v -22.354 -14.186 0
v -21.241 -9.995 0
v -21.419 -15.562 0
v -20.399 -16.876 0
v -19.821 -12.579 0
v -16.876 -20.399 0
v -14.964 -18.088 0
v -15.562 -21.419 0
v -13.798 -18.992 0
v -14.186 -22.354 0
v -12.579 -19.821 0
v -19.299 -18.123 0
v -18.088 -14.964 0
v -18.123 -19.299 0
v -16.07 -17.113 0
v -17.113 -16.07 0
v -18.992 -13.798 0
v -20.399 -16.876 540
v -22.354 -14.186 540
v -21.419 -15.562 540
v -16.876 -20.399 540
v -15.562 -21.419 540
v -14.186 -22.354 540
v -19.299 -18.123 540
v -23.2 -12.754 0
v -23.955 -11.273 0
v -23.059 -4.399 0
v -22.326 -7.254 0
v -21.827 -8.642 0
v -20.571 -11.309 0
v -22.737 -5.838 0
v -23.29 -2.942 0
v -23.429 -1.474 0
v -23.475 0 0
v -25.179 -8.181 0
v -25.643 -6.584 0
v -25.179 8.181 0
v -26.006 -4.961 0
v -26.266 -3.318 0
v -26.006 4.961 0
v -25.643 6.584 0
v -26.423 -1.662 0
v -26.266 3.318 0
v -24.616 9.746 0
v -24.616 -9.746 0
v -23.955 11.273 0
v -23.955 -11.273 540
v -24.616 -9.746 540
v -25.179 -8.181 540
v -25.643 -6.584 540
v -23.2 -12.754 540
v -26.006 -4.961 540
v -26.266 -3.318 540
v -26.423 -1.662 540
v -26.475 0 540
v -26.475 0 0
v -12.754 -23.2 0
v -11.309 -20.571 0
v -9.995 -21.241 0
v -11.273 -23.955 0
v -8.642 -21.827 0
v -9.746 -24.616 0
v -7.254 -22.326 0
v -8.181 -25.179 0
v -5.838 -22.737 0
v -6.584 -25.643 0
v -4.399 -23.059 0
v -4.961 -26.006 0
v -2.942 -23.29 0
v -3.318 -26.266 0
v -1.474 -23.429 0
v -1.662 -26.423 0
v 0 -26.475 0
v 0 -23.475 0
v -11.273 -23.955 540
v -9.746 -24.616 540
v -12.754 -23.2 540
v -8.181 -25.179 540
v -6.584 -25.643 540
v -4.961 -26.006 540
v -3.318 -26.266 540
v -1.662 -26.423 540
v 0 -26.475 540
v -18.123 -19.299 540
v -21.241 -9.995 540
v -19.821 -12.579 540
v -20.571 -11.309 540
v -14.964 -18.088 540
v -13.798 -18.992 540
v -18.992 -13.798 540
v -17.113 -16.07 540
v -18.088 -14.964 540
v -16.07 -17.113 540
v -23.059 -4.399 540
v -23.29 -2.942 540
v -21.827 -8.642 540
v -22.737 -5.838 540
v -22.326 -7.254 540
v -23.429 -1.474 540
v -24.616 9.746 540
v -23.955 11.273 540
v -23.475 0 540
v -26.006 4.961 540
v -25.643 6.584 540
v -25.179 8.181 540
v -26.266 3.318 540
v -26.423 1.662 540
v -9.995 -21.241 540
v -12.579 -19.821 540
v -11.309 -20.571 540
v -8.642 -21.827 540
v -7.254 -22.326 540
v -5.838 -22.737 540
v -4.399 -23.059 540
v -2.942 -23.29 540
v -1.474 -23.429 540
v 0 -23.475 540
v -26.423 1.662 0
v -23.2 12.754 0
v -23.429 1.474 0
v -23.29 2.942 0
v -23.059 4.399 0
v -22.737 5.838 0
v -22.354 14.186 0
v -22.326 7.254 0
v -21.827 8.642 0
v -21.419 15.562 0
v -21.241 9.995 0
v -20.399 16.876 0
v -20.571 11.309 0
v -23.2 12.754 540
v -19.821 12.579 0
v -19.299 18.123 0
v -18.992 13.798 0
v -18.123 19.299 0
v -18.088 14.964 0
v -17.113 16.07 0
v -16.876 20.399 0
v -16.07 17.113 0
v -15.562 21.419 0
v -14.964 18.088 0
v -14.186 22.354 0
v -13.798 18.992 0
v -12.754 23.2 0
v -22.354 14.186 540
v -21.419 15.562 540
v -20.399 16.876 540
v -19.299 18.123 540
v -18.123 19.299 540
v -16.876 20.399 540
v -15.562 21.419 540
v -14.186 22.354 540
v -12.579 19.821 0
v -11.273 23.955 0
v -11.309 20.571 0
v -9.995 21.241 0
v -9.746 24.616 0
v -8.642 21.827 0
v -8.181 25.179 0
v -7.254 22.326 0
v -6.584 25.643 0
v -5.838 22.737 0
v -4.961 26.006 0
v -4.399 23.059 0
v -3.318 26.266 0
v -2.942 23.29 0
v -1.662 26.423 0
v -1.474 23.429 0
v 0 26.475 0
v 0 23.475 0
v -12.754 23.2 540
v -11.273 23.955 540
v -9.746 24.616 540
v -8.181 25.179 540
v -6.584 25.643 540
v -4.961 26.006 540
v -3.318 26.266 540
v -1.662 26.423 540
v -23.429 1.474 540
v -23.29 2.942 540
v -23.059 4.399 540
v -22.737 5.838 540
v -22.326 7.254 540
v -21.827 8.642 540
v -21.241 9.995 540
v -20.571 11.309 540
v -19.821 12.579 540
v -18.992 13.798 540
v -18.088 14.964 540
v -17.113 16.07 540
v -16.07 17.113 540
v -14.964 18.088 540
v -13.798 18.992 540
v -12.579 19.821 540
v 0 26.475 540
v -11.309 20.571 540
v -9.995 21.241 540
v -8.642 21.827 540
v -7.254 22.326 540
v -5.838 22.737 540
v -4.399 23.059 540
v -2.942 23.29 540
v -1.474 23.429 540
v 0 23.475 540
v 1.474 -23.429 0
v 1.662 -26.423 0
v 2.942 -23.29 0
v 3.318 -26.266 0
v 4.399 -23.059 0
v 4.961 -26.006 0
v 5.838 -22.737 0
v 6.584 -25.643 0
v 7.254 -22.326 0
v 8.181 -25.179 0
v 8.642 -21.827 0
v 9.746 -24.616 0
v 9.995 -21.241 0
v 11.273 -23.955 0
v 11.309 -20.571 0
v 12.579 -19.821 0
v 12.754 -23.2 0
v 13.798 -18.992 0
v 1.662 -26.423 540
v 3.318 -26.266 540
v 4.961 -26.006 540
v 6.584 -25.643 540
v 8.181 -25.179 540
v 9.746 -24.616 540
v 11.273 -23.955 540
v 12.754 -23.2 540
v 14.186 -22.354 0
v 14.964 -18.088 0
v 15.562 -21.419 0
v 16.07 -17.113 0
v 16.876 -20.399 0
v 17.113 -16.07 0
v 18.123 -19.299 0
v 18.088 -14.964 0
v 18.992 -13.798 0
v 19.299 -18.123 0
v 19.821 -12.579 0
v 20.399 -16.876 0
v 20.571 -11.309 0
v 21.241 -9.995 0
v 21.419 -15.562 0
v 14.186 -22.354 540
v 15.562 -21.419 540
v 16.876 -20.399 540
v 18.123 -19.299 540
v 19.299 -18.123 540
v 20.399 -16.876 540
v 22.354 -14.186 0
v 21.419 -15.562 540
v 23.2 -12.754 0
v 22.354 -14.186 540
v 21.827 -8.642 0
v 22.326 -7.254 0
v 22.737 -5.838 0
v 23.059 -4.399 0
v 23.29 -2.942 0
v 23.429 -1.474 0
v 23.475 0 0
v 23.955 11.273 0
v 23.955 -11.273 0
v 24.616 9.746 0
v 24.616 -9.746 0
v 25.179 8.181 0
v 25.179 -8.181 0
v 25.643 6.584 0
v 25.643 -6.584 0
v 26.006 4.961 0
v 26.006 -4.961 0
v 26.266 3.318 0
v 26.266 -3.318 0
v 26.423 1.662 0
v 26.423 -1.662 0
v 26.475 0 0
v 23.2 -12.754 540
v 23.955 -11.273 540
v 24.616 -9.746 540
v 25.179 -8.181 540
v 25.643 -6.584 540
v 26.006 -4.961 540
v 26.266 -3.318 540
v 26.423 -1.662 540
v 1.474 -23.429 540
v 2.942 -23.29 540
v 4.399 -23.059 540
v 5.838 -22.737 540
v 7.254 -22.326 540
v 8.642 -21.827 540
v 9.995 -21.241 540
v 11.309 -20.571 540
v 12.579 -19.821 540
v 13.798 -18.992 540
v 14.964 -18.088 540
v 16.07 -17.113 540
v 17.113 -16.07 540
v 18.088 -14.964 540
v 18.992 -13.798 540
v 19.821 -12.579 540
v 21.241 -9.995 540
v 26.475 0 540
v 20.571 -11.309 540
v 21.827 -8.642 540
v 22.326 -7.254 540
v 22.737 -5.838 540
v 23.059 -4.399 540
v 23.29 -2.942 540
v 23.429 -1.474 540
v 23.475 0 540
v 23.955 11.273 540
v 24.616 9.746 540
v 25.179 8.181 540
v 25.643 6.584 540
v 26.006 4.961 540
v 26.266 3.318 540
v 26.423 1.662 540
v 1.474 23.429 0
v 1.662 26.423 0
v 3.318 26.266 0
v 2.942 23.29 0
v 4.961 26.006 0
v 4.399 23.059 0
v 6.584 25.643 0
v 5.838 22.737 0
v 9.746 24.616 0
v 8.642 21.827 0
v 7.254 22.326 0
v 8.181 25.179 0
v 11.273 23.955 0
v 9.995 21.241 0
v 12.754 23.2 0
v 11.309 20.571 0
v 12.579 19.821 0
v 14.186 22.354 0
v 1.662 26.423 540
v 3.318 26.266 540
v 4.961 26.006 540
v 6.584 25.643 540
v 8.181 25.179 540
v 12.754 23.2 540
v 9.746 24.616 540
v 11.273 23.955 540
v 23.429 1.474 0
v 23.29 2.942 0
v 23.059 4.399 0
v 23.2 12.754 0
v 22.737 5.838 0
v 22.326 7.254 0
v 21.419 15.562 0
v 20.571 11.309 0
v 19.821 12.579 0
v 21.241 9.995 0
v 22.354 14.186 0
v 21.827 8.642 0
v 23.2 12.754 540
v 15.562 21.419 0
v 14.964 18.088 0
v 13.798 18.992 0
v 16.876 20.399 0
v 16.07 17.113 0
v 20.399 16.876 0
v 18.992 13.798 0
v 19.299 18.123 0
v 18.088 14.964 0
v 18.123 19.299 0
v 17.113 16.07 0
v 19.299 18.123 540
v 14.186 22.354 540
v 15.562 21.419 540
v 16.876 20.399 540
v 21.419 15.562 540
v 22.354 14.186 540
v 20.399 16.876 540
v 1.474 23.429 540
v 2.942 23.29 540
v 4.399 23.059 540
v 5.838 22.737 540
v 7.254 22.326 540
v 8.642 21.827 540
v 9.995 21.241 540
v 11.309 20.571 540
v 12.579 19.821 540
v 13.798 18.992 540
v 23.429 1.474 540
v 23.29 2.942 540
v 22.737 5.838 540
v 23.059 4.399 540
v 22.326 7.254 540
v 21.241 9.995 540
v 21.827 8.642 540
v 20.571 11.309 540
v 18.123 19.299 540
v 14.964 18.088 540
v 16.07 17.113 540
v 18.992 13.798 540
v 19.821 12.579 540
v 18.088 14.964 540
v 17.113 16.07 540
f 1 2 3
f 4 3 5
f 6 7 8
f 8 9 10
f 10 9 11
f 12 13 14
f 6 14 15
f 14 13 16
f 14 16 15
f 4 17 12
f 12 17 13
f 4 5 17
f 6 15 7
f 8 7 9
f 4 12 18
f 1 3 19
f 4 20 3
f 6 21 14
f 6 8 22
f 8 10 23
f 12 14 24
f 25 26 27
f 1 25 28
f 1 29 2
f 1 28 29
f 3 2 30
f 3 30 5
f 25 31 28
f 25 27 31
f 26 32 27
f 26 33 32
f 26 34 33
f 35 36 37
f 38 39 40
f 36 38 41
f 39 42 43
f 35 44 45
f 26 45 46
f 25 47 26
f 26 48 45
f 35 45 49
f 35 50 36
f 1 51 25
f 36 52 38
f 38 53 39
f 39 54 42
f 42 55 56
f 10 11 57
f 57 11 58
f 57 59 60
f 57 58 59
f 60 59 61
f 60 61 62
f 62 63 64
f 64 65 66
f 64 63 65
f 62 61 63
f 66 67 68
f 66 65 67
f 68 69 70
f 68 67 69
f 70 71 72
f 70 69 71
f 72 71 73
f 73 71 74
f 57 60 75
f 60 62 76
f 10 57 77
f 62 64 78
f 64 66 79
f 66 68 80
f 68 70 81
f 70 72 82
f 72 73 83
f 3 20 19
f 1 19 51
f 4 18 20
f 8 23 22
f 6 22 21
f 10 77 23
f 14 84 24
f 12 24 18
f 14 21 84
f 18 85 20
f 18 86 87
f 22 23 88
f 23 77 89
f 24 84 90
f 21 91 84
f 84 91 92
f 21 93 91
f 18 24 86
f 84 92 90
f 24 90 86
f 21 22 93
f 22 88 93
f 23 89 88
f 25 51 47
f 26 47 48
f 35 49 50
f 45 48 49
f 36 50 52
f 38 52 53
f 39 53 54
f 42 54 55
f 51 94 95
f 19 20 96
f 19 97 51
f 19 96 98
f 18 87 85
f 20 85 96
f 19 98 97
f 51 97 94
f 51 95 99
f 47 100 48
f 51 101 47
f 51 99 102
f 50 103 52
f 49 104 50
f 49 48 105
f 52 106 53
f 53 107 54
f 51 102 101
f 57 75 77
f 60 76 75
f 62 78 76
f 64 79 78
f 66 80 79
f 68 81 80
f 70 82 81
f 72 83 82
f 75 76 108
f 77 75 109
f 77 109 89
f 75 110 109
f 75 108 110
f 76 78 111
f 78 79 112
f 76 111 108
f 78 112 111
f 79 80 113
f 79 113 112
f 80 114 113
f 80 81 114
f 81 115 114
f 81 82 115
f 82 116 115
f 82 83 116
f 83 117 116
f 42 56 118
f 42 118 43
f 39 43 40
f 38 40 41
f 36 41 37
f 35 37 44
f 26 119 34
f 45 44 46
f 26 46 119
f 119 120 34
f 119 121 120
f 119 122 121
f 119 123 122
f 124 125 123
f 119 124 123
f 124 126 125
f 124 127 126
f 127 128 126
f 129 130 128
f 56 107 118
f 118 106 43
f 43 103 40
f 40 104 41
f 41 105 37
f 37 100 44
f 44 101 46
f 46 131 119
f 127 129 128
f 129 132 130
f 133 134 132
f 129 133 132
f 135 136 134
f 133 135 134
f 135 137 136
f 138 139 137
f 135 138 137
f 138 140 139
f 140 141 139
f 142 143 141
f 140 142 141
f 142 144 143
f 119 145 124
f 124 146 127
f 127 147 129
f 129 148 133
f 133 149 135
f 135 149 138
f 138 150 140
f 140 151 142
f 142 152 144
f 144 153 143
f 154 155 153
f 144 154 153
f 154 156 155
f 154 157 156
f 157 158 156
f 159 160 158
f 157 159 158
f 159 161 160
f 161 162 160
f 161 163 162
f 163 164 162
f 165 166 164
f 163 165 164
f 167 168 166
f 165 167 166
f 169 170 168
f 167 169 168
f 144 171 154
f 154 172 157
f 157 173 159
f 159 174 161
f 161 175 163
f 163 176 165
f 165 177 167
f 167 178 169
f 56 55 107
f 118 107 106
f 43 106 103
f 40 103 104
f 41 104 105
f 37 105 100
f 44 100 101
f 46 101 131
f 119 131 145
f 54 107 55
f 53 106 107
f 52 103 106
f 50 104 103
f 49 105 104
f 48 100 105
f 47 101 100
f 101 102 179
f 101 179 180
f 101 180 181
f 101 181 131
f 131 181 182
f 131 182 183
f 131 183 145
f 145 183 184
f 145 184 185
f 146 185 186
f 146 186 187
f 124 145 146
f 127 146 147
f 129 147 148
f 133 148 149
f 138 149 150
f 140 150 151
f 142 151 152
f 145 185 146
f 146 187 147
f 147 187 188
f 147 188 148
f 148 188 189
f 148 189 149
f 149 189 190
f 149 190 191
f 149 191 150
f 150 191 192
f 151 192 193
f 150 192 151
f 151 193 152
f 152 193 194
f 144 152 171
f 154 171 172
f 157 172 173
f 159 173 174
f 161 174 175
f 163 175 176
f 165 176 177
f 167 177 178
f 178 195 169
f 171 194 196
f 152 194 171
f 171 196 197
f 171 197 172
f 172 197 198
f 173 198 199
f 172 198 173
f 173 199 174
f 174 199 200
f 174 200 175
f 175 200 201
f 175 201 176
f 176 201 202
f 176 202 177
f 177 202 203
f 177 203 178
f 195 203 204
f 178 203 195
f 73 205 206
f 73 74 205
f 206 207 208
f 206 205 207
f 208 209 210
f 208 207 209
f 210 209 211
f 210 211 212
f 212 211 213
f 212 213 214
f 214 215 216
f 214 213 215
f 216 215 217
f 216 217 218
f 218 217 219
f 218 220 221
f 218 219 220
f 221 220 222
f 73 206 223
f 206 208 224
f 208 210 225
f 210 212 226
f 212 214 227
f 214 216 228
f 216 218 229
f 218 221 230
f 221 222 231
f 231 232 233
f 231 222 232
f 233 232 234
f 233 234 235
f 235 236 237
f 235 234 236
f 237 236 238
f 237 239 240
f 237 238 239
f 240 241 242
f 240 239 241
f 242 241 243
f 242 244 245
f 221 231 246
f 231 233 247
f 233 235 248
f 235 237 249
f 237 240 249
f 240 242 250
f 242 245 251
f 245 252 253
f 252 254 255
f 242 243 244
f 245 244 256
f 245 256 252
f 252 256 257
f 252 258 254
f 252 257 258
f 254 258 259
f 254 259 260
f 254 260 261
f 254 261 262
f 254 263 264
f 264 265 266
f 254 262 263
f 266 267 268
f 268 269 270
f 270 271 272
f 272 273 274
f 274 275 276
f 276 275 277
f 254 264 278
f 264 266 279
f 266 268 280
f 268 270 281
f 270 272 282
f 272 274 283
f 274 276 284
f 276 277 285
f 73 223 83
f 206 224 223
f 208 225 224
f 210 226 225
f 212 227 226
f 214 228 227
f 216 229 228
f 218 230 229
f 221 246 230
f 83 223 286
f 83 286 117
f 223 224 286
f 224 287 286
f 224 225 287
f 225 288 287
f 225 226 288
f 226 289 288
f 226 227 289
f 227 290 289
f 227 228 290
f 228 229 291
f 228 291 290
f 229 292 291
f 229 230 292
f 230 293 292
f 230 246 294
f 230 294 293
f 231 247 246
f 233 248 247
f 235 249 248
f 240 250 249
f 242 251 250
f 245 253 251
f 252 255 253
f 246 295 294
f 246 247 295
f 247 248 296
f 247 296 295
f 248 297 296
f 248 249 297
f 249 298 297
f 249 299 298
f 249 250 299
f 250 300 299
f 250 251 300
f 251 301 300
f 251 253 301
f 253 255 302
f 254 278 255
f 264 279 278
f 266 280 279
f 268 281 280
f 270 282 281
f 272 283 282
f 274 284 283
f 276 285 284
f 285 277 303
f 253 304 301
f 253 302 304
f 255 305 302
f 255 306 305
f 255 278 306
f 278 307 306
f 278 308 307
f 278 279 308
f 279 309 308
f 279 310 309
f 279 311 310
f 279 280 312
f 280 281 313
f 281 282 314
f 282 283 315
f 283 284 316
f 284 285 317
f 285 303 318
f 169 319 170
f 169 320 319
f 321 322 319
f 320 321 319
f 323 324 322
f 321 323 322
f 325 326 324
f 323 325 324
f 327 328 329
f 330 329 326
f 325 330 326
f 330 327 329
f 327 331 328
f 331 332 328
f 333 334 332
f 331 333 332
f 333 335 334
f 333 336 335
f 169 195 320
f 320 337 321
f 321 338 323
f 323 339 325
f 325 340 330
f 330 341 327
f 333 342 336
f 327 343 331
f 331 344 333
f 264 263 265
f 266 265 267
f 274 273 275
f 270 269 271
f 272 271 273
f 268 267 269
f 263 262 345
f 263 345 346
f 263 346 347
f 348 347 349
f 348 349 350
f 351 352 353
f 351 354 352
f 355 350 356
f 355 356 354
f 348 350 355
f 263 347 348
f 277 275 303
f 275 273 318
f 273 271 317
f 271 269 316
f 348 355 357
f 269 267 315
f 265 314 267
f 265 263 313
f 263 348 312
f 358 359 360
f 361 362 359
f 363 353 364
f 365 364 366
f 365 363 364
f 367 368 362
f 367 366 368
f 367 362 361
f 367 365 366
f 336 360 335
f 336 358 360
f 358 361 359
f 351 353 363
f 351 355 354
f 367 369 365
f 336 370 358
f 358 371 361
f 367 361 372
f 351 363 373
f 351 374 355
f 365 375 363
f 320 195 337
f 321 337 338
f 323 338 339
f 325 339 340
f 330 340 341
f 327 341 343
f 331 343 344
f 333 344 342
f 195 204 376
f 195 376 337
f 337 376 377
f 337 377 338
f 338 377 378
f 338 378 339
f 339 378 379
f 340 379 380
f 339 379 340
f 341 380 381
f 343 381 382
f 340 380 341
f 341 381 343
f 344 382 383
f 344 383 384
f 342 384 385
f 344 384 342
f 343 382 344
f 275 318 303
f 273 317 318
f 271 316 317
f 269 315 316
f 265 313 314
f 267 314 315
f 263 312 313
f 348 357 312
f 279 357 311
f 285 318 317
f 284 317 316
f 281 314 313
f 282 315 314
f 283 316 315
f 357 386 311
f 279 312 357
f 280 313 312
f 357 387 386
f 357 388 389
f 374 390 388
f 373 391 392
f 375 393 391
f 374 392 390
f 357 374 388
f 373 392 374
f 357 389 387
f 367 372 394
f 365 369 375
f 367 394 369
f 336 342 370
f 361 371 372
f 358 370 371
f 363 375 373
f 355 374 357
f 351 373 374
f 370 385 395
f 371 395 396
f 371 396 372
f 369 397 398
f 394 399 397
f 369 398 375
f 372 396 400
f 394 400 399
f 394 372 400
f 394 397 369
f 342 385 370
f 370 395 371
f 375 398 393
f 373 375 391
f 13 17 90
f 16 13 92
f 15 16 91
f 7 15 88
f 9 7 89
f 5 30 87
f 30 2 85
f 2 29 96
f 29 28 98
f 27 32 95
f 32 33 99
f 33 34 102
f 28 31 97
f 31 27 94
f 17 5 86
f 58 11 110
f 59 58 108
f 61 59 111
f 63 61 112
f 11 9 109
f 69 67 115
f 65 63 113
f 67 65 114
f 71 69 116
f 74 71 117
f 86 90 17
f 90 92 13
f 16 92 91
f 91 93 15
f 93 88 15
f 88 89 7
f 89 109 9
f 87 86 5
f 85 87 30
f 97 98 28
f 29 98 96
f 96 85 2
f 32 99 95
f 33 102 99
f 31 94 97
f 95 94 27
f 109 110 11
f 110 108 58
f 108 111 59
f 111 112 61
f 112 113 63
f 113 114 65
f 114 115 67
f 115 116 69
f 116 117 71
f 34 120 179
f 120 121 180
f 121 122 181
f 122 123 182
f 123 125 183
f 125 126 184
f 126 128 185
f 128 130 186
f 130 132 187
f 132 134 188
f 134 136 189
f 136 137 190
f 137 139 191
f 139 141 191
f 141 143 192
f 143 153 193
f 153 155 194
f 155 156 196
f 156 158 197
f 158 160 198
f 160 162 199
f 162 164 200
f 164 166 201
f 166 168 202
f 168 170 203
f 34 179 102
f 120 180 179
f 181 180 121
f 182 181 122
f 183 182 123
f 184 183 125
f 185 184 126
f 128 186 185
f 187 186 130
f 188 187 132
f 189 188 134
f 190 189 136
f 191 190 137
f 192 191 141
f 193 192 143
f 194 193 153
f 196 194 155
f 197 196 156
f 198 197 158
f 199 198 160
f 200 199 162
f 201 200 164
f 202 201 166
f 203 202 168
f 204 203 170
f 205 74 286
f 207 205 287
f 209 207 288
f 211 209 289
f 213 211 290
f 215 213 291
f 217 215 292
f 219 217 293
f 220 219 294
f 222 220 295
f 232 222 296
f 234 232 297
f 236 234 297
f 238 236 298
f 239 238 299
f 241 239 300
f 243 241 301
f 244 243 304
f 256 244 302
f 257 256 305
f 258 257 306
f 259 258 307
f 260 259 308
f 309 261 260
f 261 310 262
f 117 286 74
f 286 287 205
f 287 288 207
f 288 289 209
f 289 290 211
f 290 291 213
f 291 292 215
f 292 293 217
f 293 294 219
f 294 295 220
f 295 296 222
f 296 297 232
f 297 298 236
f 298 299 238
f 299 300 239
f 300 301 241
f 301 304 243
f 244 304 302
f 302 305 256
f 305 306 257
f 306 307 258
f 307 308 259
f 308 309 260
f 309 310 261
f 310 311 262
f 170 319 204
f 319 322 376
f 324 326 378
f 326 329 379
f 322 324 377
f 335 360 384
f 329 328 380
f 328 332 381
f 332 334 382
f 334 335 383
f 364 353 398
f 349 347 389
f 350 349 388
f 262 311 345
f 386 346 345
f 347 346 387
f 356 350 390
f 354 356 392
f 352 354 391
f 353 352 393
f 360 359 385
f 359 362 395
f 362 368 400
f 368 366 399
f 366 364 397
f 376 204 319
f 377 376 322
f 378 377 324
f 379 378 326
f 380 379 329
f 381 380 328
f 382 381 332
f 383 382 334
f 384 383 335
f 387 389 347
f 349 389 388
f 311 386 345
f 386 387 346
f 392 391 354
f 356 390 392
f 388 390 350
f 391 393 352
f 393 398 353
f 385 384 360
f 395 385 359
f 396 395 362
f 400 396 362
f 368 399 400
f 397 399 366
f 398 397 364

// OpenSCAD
tube_diameter           = 52.95;
wall_thickness          = 3;
length                  = 540;

// Calculate the necessary radii
outer_radius = tube_diameter / 2;
inner_radius = outer_radius - wall_thickness;

module fuselage() {
    // The difference module subtracts the second shape (inner cylinder) 
    // from the first shape (outer cylinder).
    difference() {
        // Outer Cylinder (Solid part)
        cylinder(h = length, r = outer_radius);

        // Inner Cylinder (The hollow part to be subtracted)
        cylinder(h = length, r = inner_radius);
    }
}

// --- Render the Module ---
$fn=100; // Increased segments for a smoother render
fuselage();
